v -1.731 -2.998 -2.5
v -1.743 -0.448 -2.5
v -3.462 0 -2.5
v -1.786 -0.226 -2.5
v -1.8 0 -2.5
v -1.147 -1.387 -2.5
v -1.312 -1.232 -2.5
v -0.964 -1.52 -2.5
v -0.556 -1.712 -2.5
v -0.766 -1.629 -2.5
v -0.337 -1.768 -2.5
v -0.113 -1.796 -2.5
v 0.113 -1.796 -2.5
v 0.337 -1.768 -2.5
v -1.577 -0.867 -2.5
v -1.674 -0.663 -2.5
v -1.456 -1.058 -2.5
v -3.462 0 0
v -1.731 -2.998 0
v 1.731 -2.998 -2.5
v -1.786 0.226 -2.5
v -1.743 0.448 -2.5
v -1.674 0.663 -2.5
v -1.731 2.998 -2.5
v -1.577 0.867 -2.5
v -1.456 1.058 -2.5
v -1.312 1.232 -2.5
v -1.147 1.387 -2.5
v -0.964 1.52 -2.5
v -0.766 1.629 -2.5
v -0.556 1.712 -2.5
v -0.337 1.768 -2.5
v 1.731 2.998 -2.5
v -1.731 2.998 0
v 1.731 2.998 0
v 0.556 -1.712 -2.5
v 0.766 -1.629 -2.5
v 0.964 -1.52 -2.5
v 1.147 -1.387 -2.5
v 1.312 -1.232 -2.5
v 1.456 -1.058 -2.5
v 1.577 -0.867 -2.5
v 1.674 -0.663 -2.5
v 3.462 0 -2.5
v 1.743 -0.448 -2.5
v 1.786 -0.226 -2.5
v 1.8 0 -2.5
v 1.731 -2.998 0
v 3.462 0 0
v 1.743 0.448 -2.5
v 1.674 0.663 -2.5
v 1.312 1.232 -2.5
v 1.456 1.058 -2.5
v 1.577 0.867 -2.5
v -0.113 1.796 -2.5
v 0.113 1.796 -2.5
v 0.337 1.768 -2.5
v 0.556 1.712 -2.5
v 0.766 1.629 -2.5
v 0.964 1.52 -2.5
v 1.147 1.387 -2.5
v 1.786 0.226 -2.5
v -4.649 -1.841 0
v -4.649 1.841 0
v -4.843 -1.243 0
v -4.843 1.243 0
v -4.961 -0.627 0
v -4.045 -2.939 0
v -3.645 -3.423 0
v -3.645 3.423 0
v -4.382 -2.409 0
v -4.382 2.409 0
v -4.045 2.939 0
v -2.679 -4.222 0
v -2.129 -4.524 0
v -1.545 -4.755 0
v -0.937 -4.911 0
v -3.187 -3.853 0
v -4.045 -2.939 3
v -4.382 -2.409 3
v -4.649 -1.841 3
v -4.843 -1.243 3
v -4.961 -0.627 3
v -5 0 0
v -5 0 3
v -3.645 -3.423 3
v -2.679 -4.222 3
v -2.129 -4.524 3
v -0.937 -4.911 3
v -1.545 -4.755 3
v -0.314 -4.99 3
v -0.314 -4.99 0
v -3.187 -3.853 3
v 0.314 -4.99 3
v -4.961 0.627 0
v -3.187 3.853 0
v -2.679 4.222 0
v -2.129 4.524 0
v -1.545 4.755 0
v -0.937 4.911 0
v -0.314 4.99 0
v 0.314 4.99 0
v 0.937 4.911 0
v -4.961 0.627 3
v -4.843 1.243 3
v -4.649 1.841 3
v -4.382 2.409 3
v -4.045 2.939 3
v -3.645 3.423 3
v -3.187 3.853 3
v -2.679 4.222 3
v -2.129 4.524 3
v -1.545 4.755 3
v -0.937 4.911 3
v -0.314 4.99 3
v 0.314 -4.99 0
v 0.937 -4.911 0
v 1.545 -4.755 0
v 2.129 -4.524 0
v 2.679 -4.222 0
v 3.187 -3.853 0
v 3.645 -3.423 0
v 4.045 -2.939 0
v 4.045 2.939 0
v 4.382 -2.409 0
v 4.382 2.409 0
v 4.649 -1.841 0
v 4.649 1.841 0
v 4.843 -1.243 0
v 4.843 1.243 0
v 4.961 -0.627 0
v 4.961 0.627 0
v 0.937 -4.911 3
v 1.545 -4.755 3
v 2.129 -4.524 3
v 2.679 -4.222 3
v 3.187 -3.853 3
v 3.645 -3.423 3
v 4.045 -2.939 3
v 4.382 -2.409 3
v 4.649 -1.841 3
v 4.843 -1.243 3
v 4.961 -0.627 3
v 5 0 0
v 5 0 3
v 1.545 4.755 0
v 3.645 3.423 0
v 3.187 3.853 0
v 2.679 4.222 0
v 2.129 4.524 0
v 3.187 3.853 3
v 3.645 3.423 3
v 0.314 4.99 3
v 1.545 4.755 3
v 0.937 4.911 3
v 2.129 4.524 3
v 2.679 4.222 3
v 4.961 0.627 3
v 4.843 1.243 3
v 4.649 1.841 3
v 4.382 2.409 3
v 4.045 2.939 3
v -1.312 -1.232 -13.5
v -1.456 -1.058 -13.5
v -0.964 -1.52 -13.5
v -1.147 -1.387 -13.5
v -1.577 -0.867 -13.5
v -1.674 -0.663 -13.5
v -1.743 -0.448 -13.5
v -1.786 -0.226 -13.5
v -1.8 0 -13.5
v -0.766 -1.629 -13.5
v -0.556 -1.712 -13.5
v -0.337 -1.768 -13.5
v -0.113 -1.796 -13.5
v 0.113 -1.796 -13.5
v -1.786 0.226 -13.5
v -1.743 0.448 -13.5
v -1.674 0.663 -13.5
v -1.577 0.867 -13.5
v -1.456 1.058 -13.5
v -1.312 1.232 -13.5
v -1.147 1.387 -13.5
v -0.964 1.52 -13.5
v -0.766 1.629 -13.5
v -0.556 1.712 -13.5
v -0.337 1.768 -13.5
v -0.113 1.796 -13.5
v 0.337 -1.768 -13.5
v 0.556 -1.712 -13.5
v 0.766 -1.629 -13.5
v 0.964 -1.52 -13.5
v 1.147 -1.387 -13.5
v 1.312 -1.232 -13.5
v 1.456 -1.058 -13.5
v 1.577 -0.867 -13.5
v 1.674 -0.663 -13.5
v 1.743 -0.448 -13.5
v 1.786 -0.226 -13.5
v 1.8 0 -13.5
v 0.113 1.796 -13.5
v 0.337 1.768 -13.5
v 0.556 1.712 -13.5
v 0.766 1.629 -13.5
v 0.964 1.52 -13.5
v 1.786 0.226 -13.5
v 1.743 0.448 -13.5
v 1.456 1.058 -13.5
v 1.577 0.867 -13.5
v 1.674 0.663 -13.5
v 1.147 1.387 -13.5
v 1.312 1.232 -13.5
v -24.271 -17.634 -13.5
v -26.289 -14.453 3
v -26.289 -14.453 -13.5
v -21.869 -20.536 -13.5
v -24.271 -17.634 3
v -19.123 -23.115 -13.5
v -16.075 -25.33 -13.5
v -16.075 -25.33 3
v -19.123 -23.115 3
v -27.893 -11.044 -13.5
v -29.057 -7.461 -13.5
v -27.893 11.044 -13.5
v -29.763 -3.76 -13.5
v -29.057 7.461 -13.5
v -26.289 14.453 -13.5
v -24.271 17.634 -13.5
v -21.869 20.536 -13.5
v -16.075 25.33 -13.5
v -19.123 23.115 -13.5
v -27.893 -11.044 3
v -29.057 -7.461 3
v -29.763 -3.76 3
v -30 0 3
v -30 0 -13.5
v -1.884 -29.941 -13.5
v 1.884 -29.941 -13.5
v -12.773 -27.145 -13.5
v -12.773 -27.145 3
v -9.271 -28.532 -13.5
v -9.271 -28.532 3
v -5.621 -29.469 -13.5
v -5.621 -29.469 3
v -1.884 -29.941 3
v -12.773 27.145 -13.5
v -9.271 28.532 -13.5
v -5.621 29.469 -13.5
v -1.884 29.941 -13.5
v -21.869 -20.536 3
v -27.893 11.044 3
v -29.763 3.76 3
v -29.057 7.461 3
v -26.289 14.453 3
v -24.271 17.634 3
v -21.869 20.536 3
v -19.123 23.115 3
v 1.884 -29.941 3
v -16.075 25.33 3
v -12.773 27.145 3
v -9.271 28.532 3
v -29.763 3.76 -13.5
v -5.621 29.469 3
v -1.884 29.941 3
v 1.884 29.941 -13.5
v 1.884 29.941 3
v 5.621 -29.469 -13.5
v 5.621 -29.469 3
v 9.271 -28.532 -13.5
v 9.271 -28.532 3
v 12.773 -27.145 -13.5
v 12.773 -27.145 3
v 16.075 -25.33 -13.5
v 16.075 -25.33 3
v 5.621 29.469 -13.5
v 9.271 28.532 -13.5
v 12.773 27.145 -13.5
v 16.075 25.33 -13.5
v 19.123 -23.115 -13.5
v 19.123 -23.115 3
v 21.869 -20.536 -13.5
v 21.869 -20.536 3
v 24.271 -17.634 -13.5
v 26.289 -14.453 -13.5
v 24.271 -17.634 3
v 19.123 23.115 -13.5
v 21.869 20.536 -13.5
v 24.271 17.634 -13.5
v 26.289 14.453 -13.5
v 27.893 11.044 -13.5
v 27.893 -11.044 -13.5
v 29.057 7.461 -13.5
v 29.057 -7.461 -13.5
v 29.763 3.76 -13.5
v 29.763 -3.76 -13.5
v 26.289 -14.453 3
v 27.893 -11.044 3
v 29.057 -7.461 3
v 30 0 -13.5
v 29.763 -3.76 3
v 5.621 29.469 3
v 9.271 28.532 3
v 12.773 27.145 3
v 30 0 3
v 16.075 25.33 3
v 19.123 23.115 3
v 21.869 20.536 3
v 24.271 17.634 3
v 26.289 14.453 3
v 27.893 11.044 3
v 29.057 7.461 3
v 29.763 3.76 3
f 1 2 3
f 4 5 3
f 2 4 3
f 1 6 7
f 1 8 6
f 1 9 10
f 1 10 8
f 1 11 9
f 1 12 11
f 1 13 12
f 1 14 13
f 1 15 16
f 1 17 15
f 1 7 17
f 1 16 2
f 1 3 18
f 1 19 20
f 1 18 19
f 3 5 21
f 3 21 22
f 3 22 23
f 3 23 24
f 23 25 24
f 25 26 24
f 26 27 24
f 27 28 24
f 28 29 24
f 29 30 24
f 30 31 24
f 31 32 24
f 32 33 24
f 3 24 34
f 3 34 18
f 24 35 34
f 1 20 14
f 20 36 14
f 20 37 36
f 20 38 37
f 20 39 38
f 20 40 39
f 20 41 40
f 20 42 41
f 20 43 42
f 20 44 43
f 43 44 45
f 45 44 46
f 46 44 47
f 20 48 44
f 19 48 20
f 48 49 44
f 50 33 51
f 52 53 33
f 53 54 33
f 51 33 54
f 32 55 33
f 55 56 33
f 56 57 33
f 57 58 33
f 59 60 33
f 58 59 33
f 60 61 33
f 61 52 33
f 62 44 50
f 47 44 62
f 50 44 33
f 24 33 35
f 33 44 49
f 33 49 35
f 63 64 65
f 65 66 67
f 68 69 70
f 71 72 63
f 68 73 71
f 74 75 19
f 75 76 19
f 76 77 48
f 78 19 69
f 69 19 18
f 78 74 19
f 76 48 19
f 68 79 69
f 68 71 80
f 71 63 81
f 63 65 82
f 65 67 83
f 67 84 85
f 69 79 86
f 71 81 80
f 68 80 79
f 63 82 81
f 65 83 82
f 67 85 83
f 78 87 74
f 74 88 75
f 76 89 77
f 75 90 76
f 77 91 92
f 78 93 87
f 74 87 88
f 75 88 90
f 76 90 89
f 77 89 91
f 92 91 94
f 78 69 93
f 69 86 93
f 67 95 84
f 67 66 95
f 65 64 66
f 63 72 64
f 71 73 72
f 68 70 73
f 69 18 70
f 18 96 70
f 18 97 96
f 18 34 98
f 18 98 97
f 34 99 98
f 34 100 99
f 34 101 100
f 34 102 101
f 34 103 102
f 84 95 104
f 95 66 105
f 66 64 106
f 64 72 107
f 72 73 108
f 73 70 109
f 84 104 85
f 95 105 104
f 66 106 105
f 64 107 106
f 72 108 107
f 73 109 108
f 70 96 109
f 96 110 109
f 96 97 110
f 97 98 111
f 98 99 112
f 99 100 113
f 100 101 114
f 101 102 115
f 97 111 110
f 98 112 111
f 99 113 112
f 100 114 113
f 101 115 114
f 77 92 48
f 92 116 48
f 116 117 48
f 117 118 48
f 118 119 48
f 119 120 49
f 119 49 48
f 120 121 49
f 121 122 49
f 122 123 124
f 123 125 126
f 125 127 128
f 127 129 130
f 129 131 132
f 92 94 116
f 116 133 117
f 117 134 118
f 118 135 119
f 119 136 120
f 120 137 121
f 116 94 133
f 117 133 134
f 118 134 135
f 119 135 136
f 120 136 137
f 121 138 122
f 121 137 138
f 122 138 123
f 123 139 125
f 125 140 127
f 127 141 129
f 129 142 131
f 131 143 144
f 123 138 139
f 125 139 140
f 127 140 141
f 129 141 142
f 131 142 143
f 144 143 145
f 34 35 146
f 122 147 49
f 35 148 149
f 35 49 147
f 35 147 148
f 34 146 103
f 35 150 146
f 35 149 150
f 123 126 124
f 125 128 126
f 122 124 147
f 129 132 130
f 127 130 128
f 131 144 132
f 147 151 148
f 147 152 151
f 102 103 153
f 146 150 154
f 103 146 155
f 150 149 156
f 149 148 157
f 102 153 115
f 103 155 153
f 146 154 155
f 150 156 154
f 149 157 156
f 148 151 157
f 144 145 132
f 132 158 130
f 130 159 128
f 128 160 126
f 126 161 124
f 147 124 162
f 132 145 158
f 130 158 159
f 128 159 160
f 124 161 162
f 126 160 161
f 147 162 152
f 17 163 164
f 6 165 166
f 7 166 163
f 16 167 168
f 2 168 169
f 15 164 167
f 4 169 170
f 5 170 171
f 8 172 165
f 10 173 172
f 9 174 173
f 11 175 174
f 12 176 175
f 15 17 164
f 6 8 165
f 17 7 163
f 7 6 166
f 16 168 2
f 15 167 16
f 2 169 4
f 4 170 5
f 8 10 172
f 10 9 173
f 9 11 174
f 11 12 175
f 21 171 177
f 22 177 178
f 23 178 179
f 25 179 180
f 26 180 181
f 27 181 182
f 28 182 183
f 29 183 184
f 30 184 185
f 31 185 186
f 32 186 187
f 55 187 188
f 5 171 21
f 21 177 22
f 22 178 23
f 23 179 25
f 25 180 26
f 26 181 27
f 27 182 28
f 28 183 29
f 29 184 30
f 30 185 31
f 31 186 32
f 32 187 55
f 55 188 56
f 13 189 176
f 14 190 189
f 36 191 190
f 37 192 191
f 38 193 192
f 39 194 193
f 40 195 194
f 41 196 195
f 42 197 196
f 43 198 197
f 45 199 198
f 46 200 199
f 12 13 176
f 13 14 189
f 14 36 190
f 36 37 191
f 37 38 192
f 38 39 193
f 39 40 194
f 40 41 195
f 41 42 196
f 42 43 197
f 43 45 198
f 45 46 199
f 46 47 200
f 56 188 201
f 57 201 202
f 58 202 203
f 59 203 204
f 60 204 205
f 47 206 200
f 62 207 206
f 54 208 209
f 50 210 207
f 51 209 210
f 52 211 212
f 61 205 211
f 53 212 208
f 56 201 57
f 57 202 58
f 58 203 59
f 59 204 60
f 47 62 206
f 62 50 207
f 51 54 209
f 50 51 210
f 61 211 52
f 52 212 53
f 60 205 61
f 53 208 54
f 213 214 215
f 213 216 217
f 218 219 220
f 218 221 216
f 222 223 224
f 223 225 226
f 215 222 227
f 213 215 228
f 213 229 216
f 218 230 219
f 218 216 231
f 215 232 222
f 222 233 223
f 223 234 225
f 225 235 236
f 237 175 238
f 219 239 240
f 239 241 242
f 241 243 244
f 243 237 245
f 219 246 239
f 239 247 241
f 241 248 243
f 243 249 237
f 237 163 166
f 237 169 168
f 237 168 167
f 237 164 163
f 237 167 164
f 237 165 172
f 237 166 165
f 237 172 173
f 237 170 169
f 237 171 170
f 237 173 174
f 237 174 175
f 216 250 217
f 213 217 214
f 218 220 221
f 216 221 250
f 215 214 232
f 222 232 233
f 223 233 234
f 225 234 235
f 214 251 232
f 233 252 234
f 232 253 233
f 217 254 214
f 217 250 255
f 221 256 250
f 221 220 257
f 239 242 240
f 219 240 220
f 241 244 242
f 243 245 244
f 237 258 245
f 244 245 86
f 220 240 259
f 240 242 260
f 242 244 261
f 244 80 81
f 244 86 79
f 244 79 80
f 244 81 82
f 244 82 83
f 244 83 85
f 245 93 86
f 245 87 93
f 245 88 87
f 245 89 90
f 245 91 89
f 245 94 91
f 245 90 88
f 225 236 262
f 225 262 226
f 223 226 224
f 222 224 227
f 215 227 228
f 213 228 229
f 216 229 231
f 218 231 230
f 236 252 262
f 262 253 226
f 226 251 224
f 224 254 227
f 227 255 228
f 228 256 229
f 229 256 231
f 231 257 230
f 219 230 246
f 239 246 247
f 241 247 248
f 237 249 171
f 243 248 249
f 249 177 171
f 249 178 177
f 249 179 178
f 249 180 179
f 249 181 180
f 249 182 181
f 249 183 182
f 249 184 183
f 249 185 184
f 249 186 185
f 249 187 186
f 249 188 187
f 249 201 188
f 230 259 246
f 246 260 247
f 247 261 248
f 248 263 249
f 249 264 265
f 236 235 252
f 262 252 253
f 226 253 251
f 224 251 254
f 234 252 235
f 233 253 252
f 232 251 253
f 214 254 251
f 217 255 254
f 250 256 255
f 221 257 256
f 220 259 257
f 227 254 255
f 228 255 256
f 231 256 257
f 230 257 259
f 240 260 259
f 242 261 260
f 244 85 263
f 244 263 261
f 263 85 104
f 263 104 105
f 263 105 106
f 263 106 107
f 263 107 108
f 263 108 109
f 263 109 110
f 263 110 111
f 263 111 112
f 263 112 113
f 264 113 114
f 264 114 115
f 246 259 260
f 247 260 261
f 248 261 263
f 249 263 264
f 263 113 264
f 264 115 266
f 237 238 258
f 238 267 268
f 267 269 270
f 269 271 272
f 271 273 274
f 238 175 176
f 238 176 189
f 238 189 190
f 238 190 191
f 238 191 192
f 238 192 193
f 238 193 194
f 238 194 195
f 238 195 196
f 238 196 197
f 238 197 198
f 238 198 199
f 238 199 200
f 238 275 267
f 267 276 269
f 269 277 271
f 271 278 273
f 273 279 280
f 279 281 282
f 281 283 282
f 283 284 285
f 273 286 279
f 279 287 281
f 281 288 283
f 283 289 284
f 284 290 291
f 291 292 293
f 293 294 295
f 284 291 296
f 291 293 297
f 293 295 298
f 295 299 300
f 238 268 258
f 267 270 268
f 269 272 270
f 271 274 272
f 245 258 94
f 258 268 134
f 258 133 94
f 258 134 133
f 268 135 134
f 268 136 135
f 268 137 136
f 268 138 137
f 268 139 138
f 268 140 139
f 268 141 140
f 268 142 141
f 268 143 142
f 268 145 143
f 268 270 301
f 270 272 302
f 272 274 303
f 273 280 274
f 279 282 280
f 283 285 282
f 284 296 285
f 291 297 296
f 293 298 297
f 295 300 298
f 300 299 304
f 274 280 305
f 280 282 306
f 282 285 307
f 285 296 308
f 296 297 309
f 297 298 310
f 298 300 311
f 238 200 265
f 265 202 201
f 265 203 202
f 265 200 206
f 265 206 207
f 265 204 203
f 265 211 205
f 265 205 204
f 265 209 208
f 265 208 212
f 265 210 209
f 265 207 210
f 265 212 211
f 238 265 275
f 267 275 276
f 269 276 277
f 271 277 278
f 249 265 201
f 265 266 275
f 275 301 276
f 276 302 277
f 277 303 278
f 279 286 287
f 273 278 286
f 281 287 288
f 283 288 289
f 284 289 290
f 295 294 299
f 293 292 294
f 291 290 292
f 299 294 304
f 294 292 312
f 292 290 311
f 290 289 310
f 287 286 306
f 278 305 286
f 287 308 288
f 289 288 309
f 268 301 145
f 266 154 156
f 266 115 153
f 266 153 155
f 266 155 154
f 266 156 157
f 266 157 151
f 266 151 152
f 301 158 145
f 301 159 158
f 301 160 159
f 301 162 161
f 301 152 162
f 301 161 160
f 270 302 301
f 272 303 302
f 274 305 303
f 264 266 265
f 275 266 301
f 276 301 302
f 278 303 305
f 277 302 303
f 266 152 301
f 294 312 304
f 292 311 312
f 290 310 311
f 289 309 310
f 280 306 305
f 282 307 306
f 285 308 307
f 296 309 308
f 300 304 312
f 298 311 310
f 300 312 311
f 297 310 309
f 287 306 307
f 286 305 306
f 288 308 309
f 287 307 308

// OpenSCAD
$fn = 50;

difference() {
	union() {
		translate(v = [0, 0, -13.5]) {
			cylinder(h = 16.5, r = 30.0);
		}
	}
	union() {
		translate(v = [0, 0, 0]) {
			rotate(a = [0, 0, 0]) {
				difference() {
					union() {
						translate(v = [0, 0, -2.5]) {
							linear_extrude(height = 2.5) {
								polygon(points = [[3.4619999999999997, 0.0], [1.7310000000000003, 2.9981799479017264], [-1.7309999999999992, 2.9981799479017264], [-3.4619999999999997, 4.2397272186481365e-16], [-1.7310000000000014, -2.998179947901726], [1.7309999999999977, -2.9981799479017277]]);
							}
						}
					}
					union();
				}
			}
		}
		#cylinder(h = 3, r = 5.0);
		#translate(v = [0, 0, -100.0]) {
			cylinder(h = 200, r = 1.8);
		}
	}
}
